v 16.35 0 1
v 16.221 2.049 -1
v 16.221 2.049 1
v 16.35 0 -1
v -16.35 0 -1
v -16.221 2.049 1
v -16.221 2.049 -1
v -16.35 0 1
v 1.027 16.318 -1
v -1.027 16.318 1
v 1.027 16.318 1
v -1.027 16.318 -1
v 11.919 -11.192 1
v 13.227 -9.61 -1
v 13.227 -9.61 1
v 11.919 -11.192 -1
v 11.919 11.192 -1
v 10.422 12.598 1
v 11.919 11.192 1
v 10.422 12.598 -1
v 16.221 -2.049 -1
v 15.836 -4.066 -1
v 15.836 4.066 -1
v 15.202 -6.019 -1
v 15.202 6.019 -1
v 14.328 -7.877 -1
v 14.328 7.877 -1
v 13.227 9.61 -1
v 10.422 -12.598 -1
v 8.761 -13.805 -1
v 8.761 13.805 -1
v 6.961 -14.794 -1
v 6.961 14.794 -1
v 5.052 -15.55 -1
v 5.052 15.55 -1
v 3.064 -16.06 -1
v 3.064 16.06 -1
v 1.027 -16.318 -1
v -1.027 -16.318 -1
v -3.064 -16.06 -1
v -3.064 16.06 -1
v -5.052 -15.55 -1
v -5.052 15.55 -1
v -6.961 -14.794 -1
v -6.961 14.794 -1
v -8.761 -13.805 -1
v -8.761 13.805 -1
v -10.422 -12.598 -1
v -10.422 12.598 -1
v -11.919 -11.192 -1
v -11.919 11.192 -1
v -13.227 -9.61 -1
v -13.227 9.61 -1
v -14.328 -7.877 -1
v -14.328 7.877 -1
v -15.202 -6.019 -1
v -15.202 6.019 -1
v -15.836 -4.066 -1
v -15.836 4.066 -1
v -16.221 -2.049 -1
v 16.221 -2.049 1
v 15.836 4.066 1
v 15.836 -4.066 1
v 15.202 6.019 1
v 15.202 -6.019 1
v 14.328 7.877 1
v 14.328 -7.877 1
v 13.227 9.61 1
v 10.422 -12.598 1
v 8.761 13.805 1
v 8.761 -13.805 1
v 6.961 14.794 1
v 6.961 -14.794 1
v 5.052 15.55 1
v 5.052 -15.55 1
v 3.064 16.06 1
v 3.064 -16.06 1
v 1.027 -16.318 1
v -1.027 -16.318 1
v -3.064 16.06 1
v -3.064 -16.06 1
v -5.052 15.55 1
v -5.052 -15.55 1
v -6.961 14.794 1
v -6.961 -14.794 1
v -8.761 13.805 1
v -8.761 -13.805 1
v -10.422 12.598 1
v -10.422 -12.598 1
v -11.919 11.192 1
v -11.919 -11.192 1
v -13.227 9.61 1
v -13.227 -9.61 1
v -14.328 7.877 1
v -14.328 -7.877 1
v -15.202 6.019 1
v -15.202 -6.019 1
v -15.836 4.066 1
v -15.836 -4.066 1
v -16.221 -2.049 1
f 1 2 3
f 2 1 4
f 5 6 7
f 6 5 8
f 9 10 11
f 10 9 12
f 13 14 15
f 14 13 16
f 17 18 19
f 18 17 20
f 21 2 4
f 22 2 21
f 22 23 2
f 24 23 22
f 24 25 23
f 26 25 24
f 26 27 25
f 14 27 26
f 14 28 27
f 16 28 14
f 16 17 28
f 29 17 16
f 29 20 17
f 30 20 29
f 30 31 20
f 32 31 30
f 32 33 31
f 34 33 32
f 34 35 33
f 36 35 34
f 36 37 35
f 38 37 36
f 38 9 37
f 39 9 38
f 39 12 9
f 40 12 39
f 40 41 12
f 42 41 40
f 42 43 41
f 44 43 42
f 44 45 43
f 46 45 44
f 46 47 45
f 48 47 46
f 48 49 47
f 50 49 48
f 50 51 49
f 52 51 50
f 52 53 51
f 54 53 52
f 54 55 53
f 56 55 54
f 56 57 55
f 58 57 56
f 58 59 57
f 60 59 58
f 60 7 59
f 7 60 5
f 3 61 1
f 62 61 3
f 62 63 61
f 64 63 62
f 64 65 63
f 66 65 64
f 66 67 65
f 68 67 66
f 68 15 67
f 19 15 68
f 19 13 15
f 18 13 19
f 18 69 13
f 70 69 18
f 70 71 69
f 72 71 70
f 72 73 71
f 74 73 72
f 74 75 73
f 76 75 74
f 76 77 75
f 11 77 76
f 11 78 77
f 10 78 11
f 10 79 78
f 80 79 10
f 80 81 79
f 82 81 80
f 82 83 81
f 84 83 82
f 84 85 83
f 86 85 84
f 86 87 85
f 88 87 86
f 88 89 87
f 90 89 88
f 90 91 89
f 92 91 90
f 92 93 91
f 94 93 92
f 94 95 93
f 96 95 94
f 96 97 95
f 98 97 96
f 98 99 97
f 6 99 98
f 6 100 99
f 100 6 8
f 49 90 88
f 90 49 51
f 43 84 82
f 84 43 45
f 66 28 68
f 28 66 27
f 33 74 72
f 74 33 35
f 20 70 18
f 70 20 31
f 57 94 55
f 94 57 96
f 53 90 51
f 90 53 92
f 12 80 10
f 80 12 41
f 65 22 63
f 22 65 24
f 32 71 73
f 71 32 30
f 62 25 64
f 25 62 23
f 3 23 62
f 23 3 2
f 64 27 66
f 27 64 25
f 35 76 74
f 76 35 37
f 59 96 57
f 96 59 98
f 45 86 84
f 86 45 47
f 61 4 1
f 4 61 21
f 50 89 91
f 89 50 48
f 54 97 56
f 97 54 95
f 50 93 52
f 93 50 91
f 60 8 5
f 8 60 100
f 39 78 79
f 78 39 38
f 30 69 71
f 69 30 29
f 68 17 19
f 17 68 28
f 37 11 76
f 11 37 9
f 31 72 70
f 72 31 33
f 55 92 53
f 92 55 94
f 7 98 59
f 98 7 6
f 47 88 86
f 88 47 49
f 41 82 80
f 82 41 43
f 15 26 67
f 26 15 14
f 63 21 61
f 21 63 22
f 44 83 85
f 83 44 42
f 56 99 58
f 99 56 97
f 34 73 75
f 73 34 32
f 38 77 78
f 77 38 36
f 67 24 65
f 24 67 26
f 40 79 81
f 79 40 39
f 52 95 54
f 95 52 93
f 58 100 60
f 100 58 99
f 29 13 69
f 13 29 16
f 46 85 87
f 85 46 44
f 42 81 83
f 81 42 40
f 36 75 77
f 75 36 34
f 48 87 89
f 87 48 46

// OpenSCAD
$fn = 50;


difference() {
	union() {
		translate(v = [0, 0, -1.0000000000]) {
			cylinder(h = 2, r = 16.3500000000);
		}
	}
	union() {
		translate(v = [0, 0, -100.0000000000]) {
			cylinder(h = 200, r = 0);
		}
	}
}
